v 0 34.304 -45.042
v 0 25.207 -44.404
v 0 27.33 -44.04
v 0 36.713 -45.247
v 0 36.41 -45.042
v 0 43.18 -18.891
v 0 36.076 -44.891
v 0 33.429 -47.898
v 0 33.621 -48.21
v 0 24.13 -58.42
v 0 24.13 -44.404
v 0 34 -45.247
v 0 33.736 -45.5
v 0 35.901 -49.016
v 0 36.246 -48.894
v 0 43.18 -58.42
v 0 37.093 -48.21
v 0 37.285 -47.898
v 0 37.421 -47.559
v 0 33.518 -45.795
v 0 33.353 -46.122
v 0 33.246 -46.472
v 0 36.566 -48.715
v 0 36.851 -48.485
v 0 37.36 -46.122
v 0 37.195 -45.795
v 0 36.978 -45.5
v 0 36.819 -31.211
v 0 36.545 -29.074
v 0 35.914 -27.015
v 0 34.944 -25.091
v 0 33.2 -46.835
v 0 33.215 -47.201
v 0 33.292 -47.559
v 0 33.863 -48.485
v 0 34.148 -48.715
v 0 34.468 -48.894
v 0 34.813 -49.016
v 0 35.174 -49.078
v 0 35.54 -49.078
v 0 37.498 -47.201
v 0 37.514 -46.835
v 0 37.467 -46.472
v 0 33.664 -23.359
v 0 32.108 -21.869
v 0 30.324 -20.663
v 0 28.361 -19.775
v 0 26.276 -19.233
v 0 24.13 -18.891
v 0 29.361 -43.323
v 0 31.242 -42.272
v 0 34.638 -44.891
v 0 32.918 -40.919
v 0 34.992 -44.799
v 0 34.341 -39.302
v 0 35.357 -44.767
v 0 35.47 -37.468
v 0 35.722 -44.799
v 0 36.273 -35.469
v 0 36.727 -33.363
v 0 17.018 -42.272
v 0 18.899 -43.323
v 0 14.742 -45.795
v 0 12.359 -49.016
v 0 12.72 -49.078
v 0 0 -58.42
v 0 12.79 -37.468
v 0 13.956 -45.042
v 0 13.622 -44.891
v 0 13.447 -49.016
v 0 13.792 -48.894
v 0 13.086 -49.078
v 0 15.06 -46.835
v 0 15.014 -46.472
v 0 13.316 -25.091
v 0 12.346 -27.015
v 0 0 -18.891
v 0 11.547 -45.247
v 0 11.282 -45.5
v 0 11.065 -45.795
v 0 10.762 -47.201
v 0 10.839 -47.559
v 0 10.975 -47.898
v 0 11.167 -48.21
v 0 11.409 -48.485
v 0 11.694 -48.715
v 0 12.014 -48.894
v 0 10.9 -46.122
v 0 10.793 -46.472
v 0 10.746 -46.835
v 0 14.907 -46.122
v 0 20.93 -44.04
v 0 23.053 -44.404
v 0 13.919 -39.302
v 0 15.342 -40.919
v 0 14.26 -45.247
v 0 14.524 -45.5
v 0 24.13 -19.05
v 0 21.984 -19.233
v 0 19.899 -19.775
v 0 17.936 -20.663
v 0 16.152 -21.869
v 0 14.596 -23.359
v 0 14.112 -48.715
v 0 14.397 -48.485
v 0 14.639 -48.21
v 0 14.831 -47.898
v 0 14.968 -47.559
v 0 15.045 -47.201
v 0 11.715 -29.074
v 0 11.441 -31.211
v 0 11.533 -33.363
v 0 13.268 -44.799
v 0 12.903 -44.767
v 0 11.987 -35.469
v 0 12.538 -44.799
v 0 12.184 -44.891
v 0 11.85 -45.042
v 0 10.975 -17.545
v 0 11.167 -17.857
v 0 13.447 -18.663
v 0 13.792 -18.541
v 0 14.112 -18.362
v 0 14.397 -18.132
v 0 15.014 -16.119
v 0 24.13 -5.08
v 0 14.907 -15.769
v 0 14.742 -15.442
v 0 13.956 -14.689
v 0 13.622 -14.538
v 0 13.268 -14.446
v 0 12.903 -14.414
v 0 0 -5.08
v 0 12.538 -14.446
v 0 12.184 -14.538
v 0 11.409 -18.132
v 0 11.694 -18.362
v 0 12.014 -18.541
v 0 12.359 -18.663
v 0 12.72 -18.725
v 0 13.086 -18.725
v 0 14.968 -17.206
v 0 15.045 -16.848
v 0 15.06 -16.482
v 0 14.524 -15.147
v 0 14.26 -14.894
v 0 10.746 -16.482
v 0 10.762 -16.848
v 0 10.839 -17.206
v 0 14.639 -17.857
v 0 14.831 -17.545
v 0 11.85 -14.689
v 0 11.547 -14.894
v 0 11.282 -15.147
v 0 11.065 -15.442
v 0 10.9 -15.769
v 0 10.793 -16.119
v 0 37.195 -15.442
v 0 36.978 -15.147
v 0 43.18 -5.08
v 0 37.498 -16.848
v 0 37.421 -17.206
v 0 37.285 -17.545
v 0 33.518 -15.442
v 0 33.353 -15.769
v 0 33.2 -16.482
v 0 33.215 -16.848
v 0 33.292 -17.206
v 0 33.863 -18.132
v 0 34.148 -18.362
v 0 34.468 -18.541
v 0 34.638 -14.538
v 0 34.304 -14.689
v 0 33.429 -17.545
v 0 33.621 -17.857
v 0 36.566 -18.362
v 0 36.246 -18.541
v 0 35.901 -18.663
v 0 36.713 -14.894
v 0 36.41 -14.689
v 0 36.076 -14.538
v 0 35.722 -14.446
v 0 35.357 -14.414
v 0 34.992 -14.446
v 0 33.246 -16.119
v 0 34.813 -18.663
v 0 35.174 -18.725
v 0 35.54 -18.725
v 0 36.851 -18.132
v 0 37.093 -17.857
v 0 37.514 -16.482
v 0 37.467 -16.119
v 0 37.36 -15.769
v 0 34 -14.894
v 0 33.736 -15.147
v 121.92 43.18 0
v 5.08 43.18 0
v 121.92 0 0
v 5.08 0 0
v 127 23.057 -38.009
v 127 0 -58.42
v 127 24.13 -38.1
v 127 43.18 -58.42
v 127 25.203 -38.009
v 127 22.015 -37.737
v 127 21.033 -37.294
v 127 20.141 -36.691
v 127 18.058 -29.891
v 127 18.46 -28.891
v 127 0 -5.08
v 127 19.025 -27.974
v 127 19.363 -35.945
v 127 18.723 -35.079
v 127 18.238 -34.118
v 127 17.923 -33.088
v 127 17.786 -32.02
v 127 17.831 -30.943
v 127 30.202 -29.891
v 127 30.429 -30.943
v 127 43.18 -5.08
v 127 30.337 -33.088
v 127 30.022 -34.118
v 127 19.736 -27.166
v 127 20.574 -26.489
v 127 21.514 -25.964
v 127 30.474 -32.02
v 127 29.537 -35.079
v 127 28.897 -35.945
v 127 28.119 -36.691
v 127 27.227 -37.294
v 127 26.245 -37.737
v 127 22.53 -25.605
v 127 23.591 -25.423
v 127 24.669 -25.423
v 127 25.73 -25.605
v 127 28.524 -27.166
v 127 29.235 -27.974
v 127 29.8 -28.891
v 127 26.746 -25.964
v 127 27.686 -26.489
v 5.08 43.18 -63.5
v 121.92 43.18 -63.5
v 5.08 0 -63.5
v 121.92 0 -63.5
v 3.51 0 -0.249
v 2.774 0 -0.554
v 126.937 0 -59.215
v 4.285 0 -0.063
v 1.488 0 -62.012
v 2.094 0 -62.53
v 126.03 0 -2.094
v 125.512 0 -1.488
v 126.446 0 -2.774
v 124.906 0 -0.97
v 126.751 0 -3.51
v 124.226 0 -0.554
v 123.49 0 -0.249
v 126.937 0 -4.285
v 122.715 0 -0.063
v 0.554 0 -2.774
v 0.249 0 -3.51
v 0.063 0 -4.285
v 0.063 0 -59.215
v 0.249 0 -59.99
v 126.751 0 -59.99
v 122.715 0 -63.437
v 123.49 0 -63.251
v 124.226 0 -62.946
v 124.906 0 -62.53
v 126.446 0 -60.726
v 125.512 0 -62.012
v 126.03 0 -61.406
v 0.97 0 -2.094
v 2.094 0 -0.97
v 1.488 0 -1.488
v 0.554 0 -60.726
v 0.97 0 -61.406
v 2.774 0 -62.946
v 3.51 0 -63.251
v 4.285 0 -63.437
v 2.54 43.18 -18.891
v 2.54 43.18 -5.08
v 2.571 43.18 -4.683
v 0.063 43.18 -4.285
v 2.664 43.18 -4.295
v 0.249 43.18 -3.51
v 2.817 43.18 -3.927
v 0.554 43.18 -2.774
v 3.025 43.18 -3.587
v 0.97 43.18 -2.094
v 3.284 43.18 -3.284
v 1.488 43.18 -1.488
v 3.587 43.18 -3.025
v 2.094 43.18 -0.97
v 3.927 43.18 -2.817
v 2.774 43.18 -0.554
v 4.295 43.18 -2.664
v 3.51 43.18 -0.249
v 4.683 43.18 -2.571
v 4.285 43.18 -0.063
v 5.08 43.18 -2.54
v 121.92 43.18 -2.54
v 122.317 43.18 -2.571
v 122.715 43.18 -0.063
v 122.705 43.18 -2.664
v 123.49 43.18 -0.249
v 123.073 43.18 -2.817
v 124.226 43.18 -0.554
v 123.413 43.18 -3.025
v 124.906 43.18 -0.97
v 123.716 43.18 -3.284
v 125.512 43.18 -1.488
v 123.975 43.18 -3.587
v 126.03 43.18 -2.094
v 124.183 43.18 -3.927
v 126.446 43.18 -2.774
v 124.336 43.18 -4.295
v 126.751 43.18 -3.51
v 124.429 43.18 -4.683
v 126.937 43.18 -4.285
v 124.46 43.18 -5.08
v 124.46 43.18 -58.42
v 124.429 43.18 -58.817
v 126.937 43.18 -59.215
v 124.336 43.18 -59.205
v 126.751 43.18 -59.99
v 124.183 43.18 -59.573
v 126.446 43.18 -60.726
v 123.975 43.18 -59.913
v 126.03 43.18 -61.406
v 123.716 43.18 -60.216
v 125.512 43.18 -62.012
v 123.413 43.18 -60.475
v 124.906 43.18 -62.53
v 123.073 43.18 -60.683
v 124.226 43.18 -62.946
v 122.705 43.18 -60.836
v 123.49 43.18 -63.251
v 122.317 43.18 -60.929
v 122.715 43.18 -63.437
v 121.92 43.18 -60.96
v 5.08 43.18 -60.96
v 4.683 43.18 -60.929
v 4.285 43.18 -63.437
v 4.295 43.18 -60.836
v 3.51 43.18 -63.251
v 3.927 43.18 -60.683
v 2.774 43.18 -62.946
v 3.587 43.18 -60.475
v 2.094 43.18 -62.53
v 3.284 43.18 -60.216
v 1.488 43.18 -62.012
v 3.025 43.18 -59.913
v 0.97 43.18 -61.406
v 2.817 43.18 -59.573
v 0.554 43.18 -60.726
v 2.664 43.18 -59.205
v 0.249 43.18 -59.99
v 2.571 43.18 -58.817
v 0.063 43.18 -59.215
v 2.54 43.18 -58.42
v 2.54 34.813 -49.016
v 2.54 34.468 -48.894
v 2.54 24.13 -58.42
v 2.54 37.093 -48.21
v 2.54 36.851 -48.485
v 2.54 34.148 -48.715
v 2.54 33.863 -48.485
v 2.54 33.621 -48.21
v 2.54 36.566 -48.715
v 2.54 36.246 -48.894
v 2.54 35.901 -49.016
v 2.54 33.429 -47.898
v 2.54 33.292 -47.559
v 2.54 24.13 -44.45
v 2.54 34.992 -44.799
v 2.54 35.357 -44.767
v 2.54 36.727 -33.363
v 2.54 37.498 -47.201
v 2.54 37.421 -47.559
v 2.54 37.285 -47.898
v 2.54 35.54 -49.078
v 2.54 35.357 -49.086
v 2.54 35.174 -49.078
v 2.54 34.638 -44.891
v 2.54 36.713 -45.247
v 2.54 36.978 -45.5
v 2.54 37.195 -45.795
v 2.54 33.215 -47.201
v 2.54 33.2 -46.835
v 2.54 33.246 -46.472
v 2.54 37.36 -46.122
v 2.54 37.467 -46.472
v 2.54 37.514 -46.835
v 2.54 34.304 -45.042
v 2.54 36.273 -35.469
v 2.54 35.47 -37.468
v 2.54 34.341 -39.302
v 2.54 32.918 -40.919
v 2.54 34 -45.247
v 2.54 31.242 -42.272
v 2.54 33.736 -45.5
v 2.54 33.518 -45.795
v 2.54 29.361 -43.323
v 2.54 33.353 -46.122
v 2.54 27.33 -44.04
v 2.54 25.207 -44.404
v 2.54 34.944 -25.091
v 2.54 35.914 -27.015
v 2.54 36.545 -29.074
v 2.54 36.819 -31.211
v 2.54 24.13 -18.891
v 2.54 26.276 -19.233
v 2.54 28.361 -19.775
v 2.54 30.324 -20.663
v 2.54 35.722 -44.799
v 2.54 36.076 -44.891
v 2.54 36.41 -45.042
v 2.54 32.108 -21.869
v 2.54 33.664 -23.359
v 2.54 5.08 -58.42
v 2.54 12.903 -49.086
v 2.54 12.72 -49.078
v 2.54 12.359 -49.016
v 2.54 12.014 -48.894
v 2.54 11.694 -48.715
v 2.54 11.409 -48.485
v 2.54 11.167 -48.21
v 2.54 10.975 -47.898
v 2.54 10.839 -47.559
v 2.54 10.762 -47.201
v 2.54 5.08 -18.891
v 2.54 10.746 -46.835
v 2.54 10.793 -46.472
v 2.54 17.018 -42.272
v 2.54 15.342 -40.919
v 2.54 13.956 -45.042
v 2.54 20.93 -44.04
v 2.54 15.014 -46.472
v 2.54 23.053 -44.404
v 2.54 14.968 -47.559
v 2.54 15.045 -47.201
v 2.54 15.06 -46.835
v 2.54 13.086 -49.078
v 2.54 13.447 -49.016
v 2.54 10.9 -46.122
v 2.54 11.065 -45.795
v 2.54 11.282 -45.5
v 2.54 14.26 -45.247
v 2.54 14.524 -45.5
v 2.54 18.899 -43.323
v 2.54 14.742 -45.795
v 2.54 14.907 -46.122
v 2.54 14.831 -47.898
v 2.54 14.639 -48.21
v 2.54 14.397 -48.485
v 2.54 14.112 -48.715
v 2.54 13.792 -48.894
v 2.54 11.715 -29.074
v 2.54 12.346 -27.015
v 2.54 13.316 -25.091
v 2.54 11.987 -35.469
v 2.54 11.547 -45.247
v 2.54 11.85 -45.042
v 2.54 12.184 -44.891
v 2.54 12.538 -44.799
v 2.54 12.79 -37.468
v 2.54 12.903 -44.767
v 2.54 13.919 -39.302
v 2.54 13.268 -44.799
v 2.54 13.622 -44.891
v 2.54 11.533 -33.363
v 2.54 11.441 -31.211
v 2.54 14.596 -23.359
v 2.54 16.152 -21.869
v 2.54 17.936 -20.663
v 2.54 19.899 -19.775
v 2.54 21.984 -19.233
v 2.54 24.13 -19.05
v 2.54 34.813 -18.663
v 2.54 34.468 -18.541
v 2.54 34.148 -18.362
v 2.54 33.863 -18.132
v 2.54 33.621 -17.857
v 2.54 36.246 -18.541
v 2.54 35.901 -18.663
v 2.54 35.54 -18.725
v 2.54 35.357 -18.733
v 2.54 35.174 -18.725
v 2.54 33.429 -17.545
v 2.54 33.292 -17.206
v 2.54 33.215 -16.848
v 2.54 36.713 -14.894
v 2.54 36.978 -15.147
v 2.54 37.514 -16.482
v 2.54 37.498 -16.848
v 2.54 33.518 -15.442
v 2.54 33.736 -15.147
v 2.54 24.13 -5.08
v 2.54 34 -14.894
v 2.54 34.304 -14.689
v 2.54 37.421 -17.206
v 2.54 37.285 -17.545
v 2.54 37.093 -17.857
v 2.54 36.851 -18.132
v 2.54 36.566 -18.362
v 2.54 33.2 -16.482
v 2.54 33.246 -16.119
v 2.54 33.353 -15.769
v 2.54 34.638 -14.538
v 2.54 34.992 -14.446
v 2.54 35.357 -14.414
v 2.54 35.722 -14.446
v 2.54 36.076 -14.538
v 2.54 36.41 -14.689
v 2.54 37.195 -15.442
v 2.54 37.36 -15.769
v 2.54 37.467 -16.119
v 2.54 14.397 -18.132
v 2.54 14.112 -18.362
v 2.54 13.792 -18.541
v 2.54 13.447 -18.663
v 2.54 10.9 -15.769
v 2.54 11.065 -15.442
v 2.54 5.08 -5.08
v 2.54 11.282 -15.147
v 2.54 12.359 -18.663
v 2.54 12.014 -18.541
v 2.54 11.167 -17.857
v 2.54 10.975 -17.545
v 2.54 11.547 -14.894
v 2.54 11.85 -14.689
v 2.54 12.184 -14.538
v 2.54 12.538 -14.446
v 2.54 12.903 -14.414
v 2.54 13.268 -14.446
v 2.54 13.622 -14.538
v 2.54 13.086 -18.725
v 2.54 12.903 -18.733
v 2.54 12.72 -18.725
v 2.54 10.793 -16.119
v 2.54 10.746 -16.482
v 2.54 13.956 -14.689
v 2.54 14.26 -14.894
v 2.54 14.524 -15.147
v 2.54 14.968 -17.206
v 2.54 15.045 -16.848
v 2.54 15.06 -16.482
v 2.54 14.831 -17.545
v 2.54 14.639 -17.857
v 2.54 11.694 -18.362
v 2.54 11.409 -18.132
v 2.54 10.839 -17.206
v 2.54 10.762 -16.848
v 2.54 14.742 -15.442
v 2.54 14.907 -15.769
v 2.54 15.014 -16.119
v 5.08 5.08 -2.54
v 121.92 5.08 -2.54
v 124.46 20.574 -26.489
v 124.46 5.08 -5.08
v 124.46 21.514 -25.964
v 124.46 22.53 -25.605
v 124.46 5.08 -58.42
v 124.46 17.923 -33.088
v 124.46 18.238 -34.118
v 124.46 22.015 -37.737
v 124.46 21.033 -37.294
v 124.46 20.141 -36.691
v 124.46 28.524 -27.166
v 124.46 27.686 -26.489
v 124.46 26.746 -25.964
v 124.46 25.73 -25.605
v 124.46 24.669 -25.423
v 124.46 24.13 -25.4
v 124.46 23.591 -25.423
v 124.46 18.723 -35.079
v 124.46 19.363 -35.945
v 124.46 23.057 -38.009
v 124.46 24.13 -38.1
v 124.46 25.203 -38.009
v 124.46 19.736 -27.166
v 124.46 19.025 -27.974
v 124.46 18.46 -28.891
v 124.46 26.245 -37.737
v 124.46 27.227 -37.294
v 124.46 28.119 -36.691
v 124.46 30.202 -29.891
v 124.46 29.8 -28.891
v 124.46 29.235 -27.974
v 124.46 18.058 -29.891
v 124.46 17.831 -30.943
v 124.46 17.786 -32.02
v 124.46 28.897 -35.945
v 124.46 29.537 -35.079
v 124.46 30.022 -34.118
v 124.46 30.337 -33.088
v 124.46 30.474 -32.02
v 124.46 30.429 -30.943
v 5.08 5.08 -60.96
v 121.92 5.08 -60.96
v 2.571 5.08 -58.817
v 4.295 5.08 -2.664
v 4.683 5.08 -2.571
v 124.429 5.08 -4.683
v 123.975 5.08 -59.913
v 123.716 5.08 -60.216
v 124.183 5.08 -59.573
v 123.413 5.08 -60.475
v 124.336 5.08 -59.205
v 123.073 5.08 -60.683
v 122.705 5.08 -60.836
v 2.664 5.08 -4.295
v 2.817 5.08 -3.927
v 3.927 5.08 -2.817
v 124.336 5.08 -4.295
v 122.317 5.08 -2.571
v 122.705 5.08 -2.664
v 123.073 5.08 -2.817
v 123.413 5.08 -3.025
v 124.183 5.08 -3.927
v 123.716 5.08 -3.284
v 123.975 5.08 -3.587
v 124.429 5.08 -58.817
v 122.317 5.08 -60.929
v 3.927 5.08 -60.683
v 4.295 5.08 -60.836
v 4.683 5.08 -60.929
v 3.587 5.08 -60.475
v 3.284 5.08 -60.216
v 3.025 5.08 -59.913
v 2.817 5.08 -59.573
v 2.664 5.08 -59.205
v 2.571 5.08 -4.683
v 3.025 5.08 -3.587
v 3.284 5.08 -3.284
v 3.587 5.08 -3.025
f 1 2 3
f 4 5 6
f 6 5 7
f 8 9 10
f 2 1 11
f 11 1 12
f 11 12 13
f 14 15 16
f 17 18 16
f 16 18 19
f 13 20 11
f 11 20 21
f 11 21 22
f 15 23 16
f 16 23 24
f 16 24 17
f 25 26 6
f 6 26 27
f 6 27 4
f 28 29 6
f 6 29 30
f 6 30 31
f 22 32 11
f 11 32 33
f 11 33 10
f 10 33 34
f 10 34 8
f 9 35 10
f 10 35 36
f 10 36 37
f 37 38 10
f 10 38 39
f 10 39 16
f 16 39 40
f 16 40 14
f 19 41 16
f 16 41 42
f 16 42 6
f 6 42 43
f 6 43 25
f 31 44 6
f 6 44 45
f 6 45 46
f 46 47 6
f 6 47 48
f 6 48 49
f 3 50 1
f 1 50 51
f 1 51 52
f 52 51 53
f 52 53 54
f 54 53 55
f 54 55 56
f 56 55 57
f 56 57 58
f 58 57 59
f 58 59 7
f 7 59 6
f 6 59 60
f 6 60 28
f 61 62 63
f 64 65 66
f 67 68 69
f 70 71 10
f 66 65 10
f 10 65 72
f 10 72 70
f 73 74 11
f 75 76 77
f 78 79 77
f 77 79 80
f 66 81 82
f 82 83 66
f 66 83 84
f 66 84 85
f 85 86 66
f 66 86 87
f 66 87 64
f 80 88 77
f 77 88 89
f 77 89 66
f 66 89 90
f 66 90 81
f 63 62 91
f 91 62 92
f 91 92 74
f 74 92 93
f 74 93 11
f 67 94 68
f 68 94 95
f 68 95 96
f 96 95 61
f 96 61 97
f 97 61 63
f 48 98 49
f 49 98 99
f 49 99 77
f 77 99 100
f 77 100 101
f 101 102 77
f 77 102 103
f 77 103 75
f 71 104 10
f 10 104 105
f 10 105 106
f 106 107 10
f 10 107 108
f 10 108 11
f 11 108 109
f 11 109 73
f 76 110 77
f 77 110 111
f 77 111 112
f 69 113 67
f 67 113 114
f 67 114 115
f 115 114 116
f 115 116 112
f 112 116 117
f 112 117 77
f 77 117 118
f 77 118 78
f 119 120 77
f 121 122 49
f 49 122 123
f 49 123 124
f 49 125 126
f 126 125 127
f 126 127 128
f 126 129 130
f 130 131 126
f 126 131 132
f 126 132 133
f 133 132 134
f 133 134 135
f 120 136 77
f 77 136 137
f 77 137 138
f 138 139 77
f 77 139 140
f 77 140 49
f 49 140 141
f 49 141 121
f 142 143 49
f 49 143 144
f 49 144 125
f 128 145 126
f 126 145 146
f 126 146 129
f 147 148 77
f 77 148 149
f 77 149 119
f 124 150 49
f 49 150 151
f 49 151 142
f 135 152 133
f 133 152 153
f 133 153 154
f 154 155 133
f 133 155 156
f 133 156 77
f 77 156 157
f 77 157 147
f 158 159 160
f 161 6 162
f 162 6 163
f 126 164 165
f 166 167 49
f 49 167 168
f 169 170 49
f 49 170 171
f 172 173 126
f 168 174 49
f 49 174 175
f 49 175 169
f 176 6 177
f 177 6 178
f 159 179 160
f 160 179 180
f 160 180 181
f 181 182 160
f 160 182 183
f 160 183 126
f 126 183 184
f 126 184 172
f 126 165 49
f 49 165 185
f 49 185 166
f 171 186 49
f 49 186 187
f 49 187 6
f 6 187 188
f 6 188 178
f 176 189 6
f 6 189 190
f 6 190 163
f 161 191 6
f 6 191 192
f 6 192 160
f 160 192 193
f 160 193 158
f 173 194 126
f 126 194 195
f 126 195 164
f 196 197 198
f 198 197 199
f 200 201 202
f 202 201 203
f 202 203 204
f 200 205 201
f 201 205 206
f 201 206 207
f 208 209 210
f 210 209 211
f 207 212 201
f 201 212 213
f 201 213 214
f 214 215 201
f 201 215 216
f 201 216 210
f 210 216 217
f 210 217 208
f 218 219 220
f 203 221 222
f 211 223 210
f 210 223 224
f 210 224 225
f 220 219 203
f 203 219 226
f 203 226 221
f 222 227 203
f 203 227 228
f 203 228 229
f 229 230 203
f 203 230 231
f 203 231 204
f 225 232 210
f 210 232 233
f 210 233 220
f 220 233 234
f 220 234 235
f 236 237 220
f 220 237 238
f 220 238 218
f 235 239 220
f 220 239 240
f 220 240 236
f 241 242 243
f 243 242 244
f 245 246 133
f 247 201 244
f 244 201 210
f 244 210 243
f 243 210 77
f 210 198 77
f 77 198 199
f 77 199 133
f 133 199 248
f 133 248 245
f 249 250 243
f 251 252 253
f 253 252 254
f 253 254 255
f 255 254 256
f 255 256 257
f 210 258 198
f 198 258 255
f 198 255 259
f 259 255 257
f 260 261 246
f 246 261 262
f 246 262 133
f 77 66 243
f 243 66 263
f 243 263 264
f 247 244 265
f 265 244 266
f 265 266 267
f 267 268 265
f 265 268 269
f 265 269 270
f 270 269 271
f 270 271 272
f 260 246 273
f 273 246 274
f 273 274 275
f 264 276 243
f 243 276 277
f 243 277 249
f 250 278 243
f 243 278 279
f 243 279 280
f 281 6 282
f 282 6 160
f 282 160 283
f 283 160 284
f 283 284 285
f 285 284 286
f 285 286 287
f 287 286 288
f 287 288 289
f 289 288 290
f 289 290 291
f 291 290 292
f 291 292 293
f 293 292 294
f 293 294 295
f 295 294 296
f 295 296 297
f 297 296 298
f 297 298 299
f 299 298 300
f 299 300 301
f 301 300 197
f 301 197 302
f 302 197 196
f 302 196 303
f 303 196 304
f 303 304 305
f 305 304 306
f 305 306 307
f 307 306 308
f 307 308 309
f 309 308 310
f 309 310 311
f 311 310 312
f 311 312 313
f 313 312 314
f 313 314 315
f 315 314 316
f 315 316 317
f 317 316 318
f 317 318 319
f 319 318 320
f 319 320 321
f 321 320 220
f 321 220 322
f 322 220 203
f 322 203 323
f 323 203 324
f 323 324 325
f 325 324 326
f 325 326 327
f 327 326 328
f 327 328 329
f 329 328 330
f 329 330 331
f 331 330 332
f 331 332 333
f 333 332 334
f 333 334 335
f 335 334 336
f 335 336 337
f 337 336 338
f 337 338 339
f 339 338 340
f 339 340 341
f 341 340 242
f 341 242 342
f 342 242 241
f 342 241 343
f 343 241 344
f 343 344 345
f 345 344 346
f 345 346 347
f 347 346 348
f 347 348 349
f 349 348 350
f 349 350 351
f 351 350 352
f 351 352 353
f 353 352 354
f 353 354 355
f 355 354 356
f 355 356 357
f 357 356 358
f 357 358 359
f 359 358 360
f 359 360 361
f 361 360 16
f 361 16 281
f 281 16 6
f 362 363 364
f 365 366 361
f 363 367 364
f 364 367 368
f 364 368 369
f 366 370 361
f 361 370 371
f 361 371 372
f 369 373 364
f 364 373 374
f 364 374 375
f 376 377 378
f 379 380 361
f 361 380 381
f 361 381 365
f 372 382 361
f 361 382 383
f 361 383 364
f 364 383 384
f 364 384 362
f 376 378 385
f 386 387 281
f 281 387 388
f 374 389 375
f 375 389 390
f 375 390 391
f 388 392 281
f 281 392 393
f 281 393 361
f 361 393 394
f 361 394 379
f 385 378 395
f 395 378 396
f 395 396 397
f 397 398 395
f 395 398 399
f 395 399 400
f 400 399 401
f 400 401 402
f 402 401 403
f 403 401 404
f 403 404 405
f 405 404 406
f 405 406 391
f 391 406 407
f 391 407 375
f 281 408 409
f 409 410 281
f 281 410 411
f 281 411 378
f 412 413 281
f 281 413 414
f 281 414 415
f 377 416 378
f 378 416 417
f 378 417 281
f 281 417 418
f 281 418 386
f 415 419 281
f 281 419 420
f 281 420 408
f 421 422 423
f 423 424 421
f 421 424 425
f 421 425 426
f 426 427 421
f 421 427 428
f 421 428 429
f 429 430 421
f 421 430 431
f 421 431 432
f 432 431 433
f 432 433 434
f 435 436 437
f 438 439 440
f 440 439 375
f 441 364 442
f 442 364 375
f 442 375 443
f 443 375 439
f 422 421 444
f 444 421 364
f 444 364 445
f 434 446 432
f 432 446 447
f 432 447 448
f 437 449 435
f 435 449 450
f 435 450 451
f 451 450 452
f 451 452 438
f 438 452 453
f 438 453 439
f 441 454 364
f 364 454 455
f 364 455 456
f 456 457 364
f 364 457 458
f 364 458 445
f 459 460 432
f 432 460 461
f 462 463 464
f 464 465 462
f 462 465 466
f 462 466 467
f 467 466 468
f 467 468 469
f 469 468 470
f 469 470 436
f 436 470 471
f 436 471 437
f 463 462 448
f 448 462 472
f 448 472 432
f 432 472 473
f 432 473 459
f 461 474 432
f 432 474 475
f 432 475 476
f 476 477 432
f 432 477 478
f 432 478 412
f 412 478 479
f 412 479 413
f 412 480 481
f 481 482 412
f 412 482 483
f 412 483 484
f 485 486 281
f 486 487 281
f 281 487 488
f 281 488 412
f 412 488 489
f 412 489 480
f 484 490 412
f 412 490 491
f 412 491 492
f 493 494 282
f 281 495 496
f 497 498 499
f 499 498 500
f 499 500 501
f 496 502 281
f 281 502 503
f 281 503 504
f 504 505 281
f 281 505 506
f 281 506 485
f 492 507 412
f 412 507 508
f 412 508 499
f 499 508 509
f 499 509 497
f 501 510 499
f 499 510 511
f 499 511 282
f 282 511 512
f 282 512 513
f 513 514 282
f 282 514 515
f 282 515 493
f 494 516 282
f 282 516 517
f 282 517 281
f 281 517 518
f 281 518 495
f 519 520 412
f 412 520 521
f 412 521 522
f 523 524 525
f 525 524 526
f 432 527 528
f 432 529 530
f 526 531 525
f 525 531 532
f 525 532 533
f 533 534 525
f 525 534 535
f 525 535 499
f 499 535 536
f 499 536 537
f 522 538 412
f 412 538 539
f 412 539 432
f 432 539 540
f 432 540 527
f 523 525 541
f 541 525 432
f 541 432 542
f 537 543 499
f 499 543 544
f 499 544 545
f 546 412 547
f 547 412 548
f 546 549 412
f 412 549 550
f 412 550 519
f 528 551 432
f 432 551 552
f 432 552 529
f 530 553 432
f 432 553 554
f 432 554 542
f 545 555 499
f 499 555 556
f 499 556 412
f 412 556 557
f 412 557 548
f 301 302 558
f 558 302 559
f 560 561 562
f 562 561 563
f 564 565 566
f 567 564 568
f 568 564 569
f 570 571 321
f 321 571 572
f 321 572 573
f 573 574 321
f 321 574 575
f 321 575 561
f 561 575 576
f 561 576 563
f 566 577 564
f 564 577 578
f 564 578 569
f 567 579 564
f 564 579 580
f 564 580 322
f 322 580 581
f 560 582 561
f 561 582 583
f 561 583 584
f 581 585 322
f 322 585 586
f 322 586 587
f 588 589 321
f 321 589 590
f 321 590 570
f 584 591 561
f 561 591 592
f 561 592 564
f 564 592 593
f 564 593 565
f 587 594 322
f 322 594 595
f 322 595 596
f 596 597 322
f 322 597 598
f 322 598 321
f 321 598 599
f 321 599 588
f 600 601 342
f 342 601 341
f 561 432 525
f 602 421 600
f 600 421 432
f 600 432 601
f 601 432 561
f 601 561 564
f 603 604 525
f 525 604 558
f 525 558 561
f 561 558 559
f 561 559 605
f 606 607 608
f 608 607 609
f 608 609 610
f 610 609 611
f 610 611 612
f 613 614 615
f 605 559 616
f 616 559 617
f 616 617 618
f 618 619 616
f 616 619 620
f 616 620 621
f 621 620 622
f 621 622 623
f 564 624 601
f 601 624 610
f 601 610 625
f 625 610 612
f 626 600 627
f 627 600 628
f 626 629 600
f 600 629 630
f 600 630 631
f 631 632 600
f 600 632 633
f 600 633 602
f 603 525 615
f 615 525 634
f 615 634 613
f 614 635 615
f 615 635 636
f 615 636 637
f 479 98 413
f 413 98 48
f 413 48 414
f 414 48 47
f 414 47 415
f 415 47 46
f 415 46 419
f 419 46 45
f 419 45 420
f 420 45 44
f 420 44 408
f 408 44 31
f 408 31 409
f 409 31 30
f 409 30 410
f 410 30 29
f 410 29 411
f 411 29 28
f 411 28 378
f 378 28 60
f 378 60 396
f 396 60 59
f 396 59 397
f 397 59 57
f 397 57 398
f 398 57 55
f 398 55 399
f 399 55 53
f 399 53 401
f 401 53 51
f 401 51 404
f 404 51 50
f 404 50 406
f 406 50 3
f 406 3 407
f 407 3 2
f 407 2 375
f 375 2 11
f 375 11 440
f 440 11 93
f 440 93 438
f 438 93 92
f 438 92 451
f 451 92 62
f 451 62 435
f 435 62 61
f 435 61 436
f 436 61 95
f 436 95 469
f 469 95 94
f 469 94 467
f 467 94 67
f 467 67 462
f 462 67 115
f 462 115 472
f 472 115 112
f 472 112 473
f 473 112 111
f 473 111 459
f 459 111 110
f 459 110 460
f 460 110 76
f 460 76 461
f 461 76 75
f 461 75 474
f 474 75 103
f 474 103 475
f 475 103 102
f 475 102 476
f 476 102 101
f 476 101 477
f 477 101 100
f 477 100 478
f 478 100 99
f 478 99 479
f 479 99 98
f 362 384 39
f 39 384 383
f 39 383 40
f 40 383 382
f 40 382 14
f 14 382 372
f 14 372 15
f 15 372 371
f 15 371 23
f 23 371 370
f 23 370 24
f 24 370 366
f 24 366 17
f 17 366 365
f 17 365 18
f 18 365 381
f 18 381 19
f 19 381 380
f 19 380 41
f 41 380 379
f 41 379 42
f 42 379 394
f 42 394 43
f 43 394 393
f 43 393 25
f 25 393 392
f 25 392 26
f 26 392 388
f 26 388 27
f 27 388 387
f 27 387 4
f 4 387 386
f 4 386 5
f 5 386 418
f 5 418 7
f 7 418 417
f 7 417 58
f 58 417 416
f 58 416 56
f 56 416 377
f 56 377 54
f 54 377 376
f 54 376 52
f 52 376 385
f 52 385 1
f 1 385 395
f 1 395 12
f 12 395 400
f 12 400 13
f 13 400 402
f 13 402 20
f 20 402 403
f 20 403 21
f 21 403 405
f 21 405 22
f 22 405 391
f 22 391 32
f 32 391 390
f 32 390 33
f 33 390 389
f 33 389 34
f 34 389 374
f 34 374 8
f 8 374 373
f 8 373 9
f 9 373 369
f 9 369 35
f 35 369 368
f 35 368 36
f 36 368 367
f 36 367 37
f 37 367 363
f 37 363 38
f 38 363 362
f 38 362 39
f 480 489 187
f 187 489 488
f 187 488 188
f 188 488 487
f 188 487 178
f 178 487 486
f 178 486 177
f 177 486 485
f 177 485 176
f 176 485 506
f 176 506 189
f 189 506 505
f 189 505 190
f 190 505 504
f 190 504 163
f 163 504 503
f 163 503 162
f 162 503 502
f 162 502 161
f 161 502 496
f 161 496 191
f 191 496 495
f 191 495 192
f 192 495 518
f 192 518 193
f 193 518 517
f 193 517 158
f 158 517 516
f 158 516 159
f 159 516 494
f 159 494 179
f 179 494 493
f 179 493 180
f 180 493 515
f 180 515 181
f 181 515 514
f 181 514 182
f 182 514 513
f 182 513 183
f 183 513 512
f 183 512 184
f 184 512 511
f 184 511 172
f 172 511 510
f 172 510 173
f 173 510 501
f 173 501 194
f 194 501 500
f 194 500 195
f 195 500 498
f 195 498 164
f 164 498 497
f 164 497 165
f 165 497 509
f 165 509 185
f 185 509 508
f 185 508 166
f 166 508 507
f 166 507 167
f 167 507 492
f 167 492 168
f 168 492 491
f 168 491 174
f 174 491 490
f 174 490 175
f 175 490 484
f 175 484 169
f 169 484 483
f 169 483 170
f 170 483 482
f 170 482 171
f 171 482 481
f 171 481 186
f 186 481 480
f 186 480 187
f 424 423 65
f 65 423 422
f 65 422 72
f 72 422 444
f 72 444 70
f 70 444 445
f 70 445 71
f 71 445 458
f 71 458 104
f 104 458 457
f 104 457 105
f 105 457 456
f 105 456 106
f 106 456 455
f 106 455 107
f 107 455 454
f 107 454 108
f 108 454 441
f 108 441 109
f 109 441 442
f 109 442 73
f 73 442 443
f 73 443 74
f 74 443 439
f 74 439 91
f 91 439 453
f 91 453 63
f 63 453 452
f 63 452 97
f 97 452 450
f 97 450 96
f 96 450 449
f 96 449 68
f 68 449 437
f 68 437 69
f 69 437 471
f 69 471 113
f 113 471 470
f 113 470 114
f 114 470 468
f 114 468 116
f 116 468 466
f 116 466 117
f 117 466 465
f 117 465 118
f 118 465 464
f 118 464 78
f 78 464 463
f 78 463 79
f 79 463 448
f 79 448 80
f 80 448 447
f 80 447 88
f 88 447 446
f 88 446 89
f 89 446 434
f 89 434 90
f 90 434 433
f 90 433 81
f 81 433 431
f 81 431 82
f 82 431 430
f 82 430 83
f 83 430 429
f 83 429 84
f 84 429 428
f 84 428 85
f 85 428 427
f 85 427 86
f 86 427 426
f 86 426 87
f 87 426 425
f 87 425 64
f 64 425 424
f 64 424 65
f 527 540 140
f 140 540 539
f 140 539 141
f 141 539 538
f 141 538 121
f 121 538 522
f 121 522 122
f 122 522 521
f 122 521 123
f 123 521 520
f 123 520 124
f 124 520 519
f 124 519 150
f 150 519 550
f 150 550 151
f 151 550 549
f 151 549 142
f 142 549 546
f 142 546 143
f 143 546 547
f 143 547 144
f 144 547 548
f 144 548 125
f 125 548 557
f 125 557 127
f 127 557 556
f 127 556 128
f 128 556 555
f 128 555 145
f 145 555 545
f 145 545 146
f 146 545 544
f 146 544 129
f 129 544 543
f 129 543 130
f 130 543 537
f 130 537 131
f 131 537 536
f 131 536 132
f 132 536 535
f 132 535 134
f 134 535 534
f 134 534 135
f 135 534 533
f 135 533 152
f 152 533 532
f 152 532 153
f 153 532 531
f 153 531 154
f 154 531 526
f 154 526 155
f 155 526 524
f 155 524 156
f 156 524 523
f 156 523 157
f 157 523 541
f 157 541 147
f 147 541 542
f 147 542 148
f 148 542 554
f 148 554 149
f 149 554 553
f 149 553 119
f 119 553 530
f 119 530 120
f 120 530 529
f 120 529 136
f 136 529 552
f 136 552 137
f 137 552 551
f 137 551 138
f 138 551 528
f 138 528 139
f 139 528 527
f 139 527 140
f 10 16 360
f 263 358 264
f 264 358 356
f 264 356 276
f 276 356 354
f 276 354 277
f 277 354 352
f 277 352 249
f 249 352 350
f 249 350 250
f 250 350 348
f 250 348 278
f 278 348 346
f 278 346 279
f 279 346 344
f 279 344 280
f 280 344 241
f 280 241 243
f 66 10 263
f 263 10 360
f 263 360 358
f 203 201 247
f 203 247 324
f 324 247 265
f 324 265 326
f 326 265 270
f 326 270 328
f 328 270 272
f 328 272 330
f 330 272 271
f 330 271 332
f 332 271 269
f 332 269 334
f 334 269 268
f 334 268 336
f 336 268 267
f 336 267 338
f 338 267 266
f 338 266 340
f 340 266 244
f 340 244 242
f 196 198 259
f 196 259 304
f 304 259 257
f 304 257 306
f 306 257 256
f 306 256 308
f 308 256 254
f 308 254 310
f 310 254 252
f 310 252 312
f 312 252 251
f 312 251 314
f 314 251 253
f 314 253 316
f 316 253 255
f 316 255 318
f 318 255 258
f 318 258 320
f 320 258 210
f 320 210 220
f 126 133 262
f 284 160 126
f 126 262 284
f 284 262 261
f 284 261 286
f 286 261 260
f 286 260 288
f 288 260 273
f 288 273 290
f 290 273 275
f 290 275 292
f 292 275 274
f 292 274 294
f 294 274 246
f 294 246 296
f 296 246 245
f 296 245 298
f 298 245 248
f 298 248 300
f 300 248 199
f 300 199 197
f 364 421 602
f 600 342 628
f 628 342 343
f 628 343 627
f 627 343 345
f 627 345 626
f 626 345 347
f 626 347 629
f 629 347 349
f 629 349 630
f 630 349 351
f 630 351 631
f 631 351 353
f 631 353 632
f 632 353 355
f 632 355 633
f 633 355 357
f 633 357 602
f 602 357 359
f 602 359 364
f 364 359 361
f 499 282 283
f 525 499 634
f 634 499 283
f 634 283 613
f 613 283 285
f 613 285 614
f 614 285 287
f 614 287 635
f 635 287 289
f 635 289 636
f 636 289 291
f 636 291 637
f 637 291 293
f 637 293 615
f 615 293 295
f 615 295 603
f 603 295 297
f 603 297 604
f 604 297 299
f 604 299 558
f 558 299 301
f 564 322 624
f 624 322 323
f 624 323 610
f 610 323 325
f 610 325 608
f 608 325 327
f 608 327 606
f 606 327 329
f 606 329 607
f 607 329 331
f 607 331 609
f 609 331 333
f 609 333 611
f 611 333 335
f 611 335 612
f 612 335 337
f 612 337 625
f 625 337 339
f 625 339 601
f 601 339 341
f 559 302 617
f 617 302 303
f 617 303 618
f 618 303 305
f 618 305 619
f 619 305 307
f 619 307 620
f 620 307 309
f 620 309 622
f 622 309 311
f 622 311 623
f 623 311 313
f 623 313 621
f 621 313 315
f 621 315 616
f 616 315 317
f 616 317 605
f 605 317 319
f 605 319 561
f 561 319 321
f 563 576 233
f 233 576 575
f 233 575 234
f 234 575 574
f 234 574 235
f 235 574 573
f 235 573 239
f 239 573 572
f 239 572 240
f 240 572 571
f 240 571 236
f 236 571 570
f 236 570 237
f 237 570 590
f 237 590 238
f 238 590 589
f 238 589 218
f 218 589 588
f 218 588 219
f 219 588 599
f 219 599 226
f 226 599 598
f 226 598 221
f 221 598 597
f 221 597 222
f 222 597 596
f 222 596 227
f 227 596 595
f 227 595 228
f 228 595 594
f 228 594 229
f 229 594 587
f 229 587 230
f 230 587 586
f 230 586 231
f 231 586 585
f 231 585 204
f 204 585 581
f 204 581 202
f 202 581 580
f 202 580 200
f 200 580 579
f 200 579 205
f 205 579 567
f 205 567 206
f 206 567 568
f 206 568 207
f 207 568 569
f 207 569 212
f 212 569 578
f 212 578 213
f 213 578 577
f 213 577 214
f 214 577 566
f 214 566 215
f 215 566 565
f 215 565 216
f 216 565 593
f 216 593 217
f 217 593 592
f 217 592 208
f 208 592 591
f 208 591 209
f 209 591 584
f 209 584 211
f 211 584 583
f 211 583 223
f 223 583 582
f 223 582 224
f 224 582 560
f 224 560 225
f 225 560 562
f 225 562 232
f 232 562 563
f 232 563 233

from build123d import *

# Parameters (mm, degrees)
SKETCH1_W           = 127
SKETCH1_H           = 63.5
BOSS_EXTRUDE1_DEPTH = 5.08
SKETCH2_W           = 127
SKETCH2_H           = 63.5
SKETCH2_W_2         = 121.92
SKETCH2_H_2         = 58.42
BOSS_EXTRUDE3_DEPTH = 38.1
CUT_EXTRUDE1_REACH  = 150.411
SKETCH3_R           = 12.7
SKETCH3_R_2         = 2.159
FILLET3_R           = 5.08
FILLET4_R           = 2.54
CUT_EXTRUDE6_REACH  = 150.411
SKETCH4_R           = 6.35


with BuildPart() as part:
    # Sketch1 → Boss-Extrude1 (new body)
    with BuildSketch(Plane(origin=(0, 0, 0), x_dir=(1, 0, 0), z_dir=(0, 1, 0))):
        with Locations((63.5, 31.75)):
            Rectangle(SKETCH1_W, SKETCH1_H)
    extrude(amount=BOSS_EXTRUDE1_DEPTH)

    # Sketch2 → Boss-Extrude3 (add)
    with BuildSketch(Plane(origin=(0, 5.08, 0), x_dir=(1, 0, 0), z_dir=(0, 1, 0))):
        with Locations((63.5, 31.75)):
            Rectangle(SKETCH2_W, SKETCH2_H)
        with Locations((63.5, 31.75)):
            Rectangle(SKETCH2_W_2, SKETCH2_H_2, mode=Mode.SUBTRACT)
    extrude(amount=BOSS_EXTRUDE3_DEPTH)

    # Sketch3 → Cut-Extrude1 (cut, up to next)
    with BuildSketch(Plane.ZY, mode=Mode.PRIVATE) as cut_extrude1_sk1:
        with Locations((-31.75, 24.13)):
            Circle(SKETCH3_R)
    cut_extrude1_tool1 = extrude(cut_extrude1_sk1.sketch, amount=-CUT_EXTRUDE1_REACH, mode=Mode.PRIVATE) & part.part
    # Sketch3 → Cut-Extrude1 (cut, up to next)
    with BuildSketch(Plane.ZY, mode=Mode.PRIVATE) as cut_extrude1_sk2:
        with Locations((-46.9265, 35.3568)):
            Circle(SKETCH3_R_2)
    cut_extrude1_tool2 = extrude(cut_extrude1_sk2.sketch, amount=-CUT_EXTRUDE1_REACH, mode=Mode.PRIVATE) & part.part
    # Sketch3 → Cut-Extrude1 (cut, up to next)
    with BuildSketch(Plane.ZY, mode=Mode.PRIVATE) as cut_extrude1_sk3:
        with Locations((-16.5735, 35.3568)):
            Circle(SKETCH3_R_2)
    cut_extrude1_tool3 = extrude(cut_extrude1_sk3.sketch, amount=-CUT_EXTRUDE1_REACH, mode=Mode.PRIVATE) & part.part
    # Sketch3 → Cut-Extrude1 (cut, up to next)
    with BuildSketch(Plane.ZY, mode=Mode.PRIVATE) as cut_extrude1_sk4:
        with Locations((-46.9265, 12.9032)):
            Circle(SKETCH3_R_2)
    cut_extrude1_tool4 = extrude(cut_extrude1_sk4.sketch, amount=-CUT_EXTRUDE1_REACH, mode=Mode.PRIVATE) & part.part
    # Sketch3 → Cut-Extrude1 (cut, up to next)
    with BuildSketch(Plane.ZY, mode=Mode.PRIVATE) as cut_extrude1_sk5:
        with Locations((-16.5735, 12.9032)):
            Circle(SKETCH3_R_2)
    cut_extrude1_tool5 = extrude(cut_extrude1_sk5.sketch, amount=-CUT_EXTRUDE1_REACH, mode=Mode.PRIVATE) & part.part
    add(cut_extrude1_tool1.solids().sort_by_distance((0, 24.13, -31.75))[0], mode=Mode.SUBTRACT)
    add(cut_extrude1_tool2.solids().sort_by_distance((0, 35.3568, -46.9265))[0], mode=Mode.SUBTRACT)
    add(cut_extrude1_tool3.solids().sort_by_distance((0, 35.3568, -16.5735))[0], mode=Mode.SUBTRACT)
    add(cut_extrude1_tool4.solids().sort_by_distance((0, 12.9032, -46.9265))[0], mode=Mode.SUBTRACT)
    add(cut_extrude1_tool5.solids().sort_by_distance((0, 12.9032, -16.5735))[0], mode=Mode.SUBTRACT)

    # Fillet3
    fillet3_edges = [part.edges().sort_by_distance(p)[0] for p in [
        (0, 21.59, -63.5),
        (127, 21.59, -63.5),
        (127, 21.59, 0),
        (0, 21.59, 0),
    ]]
    fillet(fillet3_edges, radius=FILLET3_R)

    # Fillet4
    fillet4_edges = [part.edges().sort_by_distance(p)[0] for p in [
        (2.54, 24.13, -2.54),
        (124.46, 24.13, -2.54),
        (124.46, 24.13, -60.96),
        (2.54, 24.13, -60.96),
    ]]
    fillet(fillet4_edges, radius=FILLET4_R)

    # Sketch4 → Cut-Extrude6 (cut, up to next)
    with BuildSketch(Plane(origin=(127, 0, 0), x_dir=(0, 0, -1), z_dir=(1, 0, 0)), mode=Mode.PRIVATE) as cut_extrude6_sk1:
        with Locations((31.75, 24.13)):
            Circle(SKETCH4_R)
    cut_extrude6_tool1 = extrude(cut_extrude6_sk1.sketch, amount=-CUT_EXTRUDE6_REACH, mode=Mode.PRIVATE) & part.part
    add(cut_extrude6_tool1.solids().sort_by_distance((127, 24.13, -31.75))[0], mode=Mode.SUBTRACT)


solid = part.part
